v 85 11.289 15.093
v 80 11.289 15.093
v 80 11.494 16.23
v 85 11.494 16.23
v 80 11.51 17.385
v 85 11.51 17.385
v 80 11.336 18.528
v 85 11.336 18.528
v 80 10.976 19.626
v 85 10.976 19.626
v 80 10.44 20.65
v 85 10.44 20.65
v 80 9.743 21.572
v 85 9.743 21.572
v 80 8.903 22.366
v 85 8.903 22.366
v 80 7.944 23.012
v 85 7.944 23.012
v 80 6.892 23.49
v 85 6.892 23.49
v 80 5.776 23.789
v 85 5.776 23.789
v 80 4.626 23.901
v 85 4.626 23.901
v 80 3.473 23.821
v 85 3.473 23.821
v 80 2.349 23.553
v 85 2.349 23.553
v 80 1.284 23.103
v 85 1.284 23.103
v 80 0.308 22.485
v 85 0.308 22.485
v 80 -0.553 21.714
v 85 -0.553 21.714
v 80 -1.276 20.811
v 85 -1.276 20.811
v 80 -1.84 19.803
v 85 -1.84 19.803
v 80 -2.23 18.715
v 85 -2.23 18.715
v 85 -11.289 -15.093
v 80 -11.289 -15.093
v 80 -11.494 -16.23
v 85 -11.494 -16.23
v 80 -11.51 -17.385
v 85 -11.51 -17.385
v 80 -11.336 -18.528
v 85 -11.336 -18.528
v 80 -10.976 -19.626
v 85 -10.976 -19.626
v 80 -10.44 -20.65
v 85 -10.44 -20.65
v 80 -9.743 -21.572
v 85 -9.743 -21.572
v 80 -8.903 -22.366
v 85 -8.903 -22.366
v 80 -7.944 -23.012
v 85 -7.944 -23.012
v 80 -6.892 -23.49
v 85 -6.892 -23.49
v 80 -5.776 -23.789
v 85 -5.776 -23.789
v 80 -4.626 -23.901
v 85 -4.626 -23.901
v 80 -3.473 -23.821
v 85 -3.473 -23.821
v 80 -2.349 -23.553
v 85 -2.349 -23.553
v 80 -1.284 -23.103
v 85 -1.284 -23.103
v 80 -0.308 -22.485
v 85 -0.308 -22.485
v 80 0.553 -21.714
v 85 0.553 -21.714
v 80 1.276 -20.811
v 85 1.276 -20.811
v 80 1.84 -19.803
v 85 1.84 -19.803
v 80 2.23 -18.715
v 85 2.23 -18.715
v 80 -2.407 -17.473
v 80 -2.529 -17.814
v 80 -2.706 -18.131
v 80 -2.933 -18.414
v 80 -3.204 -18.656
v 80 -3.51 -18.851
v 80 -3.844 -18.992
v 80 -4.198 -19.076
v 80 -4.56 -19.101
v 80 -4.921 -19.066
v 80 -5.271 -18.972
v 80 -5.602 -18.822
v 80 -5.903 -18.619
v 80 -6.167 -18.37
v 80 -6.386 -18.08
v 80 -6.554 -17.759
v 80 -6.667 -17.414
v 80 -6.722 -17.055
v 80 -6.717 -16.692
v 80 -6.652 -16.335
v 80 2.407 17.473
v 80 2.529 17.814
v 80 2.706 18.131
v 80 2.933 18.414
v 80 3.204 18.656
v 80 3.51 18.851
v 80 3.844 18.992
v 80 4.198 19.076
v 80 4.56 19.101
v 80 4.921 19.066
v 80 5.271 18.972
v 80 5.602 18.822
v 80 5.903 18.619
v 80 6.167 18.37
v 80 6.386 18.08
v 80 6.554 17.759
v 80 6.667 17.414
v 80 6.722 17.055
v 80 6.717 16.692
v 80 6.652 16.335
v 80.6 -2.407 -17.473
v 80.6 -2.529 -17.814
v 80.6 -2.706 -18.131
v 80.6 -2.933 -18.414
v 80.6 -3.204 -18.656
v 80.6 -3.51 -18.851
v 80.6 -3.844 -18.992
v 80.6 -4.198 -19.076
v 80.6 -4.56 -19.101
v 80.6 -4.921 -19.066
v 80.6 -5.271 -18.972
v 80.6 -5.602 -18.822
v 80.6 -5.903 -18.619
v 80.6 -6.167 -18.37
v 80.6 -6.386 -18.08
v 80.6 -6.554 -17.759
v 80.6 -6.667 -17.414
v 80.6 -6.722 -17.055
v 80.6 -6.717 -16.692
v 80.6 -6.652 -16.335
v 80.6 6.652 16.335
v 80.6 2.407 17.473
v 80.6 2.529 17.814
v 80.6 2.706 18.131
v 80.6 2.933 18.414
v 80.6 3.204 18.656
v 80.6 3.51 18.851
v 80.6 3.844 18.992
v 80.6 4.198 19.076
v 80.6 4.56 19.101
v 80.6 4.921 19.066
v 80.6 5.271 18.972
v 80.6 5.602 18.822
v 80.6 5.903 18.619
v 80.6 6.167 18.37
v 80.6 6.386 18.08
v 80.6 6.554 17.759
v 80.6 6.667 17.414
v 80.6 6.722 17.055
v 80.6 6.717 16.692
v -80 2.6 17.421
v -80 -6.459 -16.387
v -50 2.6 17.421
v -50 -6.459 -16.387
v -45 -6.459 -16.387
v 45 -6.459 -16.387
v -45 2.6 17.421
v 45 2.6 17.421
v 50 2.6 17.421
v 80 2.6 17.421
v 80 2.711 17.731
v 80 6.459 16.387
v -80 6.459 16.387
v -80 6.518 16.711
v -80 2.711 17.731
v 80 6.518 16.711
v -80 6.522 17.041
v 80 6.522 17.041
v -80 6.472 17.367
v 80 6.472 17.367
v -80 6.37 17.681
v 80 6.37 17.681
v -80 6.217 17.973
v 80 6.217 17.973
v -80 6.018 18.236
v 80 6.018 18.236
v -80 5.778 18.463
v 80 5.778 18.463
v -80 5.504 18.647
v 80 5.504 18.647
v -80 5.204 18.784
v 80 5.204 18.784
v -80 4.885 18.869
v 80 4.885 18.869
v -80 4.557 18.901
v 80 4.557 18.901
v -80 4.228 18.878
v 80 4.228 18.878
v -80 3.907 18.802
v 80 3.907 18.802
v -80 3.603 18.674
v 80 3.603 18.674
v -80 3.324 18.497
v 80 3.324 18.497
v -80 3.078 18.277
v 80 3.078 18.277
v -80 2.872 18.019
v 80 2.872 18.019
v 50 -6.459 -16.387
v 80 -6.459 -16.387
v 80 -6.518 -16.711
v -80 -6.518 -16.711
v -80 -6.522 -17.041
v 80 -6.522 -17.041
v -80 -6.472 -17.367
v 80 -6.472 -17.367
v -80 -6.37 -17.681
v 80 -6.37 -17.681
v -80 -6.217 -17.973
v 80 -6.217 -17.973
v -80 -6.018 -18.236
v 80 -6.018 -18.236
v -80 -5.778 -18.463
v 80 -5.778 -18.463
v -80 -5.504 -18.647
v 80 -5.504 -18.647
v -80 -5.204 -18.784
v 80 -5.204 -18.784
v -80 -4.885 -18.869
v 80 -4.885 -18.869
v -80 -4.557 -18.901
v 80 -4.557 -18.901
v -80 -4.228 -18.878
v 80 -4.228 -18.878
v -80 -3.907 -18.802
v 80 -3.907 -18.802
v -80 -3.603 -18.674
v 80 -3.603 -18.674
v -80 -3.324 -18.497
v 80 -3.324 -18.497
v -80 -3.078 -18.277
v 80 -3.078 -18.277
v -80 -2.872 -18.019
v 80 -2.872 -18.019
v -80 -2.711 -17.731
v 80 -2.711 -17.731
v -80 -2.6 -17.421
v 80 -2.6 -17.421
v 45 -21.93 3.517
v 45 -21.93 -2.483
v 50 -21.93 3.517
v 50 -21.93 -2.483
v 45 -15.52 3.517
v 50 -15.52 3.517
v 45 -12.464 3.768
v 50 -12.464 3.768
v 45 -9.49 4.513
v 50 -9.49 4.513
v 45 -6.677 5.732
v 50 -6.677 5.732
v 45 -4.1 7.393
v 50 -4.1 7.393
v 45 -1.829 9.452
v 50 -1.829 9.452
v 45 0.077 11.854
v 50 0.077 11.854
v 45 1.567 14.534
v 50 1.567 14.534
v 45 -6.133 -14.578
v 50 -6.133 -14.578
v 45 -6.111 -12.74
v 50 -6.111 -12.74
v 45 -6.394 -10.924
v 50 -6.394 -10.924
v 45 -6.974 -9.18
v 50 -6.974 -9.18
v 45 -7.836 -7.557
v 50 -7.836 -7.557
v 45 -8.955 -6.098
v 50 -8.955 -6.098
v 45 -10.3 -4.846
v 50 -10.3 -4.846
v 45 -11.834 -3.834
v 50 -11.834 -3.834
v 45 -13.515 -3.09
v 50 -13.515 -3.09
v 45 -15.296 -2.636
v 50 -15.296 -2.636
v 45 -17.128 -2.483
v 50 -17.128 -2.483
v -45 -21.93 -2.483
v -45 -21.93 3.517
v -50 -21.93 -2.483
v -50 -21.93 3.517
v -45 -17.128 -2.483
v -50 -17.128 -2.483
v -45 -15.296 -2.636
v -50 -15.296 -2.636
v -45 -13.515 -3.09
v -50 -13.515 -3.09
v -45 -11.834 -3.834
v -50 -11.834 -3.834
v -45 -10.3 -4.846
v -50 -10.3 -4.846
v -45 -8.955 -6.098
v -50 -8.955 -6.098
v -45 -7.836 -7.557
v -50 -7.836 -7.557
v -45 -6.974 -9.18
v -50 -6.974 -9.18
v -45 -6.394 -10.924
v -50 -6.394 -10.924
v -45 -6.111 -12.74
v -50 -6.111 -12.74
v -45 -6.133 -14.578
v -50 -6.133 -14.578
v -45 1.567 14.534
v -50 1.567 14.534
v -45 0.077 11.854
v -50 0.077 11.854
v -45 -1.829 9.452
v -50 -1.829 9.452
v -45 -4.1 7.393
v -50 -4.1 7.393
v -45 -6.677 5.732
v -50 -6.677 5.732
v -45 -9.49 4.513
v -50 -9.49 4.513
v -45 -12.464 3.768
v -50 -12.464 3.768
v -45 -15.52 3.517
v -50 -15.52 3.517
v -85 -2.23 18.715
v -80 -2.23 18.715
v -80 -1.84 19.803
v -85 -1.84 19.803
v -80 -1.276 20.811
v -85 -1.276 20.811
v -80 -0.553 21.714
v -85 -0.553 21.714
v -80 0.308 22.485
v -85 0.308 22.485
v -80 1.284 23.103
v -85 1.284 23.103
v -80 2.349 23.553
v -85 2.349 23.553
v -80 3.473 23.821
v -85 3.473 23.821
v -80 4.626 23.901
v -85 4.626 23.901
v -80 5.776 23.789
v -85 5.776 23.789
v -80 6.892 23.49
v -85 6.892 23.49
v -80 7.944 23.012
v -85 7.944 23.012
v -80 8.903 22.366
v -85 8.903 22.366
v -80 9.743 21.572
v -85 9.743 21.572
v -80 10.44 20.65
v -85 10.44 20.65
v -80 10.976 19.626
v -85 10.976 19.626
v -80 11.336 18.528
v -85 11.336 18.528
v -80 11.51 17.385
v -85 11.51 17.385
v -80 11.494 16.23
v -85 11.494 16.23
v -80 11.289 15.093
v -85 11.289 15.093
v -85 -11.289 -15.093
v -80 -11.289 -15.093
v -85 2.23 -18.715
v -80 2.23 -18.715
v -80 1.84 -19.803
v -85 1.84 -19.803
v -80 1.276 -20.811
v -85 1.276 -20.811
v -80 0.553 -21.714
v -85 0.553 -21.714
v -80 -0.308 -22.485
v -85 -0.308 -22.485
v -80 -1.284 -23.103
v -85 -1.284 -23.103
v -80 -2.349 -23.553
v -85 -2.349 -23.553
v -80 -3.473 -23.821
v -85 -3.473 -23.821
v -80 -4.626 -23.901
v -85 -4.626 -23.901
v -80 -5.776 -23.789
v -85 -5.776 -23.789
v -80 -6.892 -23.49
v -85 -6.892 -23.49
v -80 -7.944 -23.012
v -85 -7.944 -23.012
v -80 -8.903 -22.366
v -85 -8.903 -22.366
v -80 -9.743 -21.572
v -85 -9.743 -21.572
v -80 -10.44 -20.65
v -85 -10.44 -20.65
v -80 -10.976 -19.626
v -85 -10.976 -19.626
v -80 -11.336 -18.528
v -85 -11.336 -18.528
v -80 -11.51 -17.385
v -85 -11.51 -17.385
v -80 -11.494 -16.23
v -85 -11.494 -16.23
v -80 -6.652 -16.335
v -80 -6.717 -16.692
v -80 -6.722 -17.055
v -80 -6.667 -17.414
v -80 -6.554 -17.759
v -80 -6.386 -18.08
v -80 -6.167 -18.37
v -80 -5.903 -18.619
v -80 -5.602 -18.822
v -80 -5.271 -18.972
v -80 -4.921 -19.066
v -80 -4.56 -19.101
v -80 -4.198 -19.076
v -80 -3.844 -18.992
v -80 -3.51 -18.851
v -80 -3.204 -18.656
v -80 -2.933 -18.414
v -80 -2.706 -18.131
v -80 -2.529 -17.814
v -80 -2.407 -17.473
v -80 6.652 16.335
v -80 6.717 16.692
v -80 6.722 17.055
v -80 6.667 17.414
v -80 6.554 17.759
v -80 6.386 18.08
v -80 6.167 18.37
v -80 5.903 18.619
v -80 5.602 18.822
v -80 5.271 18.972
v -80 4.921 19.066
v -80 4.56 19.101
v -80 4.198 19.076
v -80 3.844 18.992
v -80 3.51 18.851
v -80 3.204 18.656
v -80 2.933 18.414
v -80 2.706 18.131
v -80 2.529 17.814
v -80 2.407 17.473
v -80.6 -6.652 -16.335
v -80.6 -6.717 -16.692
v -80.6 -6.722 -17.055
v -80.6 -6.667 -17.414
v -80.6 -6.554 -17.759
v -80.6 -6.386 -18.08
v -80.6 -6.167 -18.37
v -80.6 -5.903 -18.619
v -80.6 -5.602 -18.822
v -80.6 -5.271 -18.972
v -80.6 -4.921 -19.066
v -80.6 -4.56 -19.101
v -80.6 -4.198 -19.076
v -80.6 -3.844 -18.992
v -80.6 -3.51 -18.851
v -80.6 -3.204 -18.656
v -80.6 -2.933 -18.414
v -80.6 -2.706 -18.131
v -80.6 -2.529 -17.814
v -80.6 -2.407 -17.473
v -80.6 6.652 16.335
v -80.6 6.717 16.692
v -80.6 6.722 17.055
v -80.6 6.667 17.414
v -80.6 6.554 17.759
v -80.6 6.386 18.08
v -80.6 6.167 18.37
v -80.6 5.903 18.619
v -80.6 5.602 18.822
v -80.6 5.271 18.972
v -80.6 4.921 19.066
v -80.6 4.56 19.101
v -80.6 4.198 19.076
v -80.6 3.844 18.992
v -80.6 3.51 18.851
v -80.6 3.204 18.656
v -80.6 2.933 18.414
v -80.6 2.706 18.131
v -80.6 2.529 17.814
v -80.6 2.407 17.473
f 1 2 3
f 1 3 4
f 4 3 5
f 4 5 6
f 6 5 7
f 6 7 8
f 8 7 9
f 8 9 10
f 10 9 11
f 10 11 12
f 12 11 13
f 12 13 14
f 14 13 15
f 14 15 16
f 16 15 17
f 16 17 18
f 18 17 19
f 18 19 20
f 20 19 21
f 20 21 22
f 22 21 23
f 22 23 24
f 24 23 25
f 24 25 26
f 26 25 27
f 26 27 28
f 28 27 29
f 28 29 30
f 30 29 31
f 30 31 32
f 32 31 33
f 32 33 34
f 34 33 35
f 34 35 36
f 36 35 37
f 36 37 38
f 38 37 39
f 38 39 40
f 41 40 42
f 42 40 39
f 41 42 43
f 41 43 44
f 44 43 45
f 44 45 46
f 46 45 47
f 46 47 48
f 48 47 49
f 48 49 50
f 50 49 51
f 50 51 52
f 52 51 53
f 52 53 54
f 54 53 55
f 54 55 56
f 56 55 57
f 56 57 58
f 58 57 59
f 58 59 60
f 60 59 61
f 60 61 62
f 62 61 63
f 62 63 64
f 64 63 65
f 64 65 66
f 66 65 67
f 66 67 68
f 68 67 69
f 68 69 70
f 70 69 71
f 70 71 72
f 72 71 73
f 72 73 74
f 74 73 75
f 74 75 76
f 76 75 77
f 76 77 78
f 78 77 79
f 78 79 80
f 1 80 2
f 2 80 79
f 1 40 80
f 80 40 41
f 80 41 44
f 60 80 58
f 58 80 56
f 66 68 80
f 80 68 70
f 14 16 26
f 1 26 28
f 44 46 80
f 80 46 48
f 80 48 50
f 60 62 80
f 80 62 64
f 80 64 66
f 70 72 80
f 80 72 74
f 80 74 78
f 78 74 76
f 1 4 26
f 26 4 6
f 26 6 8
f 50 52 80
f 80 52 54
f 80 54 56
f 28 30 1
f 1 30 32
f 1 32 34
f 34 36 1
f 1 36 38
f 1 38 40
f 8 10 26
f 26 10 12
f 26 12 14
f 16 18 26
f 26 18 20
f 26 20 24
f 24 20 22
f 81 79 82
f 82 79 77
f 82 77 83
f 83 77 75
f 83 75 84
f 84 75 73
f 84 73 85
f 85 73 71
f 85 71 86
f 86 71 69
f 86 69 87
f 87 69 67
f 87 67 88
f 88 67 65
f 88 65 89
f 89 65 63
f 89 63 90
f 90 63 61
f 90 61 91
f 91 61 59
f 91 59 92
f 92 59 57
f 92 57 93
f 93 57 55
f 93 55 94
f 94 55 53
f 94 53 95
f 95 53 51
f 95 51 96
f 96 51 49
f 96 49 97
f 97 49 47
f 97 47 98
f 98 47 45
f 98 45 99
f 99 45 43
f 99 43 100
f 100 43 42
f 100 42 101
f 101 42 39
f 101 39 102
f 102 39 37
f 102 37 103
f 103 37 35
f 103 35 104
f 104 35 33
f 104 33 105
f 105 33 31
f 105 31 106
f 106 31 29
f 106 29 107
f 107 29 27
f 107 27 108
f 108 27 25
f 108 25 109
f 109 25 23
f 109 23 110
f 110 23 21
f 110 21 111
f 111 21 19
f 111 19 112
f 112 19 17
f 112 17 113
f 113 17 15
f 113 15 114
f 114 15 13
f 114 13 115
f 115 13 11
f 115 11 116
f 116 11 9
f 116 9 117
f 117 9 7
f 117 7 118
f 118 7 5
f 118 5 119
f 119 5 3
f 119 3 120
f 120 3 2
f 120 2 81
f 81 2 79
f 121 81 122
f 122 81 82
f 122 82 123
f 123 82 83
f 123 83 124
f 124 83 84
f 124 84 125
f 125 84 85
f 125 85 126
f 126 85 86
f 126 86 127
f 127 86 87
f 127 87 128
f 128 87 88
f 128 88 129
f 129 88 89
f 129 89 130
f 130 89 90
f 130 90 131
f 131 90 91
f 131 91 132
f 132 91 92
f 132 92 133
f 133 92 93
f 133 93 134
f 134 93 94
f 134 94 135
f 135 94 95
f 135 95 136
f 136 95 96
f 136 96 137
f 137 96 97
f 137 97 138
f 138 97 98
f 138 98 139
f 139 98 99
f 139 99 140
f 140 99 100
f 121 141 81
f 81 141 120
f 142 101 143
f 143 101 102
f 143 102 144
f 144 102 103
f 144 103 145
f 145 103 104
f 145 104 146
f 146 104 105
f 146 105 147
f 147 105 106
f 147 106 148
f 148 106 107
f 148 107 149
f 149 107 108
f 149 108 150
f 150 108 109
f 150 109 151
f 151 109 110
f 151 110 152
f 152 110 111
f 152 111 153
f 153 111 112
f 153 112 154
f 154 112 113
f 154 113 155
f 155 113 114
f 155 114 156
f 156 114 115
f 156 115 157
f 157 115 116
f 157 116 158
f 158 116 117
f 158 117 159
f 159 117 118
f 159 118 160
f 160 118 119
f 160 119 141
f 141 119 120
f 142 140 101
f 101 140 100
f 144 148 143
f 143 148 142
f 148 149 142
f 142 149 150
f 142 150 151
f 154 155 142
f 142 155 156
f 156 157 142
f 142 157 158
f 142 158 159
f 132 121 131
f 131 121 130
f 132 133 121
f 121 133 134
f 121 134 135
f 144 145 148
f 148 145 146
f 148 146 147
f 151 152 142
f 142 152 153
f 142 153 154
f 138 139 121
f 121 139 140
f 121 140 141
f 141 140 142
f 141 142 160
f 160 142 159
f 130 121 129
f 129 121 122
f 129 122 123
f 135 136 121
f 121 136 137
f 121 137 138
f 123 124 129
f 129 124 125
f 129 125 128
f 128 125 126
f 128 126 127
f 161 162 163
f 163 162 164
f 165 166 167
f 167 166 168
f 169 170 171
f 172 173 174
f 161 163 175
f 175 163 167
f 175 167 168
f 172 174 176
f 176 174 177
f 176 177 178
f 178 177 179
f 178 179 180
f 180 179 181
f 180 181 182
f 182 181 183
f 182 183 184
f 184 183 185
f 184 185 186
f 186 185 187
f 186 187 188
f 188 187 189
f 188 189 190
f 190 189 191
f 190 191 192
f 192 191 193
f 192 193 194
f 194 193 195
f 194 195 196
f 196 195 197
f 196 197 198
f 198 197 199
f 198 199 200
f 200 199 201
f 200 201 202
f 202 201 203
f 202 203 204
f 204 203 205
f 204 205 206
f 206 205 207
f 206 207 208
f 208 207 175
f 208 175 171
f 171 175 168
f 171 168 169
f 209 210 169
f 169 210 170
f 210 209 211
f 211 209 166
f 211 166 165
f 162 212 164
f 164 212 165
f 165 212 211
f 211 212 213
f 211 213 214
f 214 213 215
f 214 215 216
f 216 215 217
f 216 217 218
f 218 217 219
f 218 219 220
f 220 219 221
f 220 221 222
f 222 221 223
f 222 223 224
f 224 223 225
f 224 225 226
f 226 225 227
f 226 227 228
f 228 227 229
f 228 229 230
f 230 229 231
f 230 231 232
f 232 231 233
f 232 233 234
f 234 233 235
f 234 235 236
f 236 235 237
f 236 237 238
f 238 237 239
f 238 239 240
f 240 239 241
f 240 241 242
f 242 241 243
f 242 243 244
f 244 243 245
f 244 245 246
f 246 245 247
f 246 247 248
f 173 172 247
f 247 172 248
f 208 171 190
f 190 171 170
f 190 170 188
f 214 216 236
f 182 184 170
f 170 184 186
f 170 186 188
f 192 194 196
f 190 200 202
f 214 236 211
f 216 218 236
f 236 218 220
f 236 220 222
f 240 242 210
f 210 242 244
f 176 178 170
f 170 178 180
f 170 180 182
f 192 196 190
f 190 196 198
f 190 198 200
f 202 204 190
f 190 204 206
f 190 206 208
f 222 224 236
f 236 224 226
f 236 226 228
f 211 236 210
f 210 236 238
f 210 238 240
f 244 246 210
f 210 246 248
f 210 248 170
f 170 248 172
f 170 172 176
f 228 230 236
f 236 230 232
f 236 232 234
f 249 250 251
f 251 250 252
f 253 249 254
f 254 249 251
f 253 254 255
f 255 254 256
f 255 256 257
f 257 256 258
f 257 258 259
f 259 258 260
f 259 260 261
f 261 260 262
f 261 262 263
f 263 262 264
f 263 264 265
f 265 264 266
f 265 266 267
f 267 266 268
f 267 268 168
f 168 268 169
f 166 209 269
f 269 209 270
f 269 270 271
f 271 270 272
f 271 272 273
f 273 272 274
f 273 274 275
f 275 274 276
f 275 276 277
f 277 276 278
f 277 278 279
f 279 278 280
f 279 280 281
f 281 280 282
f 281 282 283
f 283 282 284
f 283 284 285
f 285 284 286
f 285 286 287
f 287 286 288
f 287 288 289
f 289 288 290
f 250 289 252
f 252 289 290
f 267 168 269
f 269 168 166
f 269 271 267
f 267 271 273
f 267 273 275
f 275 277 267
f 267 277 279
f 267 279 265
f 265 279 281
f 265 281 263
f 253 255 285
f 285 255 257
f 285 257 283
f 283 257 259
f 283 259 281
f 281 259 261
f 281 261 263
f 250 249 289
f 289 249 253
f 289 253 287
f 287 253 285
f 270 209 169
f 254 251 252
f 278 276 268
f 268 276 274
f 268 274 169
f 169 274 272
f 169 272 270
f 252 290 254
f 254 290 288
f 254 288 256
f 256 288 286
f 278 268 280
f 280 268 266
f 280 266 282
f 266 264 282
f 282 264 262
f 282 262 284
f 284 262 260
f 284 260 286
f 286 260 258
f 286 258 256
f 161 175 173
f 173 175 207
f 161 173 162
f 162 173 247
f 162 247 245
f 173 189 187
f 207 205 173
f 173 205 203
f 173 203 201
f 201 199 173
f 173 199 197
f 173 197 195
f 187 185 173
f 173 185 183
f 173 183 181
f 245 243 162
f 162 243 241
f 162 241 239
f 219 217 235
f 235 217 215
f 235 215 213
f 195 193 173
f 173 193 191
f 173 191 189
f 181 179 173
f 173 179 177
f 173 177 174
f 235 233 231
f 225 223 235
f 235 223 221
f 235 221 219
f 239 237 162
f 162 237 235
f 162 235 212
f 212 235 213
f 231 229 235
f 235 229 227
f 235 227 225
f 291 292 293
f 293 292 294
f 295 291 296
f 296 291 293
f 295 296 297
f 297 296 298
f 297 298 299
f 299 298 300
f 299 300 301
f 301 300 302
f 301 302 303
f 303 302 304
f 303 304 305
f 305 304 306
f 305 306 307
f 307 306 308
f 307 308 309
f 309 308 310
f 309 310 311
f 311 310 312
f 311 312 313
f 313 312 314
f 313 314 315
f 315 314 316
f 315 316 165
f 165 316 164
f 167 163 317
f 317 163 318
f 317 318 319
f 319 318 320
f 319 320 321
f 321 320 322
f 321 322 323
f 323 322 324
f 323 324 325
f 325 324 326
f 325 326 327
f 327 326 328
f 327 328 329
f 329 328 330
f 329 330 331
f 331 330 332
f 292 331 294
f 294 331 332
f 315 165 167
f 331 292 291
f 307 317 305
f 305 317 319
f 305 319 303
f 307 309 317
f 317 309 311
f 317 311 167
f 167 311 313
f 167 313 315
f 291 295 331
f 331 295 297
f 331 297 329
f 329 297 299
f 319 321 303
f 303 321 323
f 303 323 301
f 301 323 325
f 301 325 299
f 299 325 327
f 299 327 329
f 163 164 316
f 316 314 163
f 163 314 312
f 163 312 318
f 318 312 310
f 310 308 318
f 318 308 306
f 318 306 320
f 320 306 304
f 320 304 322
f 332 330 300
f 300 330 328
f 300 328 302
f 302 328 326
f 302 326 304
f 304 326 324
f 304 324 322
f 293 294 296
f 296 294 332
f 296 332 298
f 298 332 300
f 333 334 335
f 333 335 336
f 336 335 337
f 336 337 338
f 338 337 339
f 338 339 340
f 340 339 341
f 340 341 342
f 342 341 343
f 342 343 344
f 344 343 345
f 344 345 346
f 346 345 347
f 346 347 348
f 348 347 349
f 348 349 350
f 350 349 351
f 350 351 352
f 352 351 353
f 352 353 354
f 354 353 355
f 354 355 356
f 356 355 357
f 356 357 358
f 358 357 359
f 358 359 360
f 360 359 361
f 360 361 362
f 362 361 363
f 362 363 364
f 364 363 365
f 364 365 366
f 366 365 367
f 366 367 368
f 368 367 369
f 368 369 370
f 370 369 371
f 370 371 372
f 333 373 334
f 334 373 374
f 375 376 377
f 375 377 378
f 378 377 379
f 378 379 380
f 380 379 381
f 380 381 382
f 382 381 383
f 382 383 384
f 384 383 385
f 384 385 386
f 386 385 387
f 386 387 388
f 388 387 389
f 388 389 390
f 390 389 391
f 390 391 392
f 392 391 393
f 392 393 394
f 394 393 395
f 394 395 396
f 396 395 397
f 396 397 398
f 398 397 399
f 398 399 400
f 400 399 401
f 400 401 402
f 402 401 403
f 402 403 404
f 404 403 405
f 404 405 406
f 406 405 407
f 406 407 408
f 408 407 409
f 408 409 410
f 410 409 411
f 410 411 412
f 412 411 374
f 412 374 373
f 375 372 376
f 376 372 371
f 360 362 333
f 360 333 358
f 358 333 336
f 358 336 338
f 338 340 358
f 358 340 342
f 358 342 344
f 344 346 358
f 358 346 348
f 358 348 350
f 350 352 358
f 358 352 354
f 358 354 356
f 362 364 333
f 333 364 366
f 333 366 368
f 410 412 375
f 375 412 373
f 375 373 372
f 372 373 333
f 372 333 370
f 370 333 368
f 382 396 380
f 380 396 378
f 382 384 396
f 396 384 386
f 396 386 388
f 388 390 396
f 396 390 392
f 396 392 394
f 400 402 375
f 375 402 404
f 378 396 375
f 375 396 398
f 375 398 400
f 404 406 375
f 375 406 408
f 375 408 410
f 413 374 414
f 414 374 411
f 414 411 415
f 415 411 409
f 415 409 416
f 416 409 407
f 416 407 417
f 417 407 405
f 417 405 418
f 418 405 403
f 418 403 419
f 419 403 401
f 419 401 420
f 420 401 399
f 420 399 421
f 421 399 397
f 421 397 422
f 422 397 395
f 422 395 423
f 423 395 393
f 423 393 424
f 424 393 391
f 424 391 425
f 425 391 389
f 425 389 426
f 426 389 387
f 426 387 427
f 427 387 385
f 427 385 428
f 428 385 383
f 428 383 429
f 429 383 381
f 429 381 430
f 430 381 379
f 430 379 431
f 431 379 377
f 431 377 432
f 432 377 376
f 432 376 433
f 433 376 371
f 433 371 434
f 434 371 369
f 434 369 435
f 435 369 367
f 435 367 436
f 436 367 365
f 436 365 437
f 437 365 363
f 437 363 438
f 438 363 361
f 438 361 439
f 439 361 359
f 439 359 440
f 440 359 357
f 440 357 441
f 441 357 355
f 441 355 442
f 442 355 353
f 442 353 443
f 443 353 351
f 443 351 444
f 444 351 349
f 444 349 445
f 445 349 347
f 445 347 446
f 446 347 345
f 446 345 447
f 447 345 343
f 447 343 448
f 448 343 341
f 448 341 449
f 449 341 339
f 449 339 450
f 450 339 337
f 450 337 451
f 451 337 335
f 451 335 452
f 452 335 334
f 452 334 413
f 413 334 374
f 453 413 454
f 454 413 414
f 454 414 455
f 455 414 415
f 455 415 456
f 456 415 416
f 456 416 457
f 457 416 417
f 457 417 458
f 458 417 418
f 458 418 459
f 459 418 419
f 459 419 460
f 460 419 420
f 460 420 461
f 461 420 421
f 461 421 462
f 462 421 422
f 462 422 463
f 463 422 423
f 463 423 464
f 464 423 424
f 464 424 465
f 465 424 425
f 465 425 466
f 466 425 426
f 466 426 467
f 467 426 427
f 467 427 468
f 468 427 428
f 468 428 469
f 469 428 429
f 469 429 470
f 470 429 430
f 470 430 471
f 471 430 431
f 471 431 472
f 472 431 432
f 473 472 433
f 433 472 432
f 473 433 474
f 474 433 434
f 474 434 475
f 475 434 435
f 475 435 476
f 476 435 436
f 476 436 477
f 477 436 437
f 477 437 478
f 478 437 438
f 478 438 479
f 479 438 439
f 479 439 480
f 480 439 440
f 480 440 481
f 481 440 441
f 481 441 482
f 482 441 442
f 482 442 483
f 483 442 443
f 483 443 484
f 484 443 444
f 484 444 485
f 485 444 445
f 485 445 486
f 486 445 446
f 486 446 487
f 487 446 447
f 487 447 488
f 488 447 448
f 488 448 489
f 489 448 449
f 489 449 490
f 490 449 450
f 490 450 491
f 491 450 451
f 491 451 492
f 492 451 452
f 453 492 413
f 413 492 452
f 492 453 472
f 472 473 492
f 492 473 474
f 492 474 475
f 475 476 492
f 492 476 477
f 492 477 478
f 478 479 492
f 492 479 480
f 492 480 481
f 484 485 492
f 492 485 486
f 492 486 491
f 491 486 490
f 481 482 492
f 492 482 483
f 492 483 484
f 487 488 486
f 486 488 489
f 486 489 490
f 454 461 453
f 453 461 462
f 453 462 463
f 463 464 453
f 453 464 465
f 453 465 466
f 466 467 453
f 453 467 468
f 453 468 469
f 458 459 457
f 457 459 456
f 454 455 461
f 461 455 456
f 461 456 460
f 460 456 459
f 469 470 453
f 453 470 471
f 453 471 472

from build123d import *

# Parameters (mm, degrees)
BOSS_EXTRUDE1_DEPTH = 80
BOSS_EXTRUDE2_DEPTH = 5
CUT_EXTRUDE1_DEPTH  = 0.6
BOSS_EXTRUDE5_START = -45
BOSS_EXTRUDE5_DEPTH = 5


with BuildPart() as part:
    # Sketch1 → Boss-Extrude1 (new body)
    with BuildSketch(Plane(origin=(0, 0, 0), x_dir=(0, 0, -1), z_dir=(1, 0, 0))):
        with BuildLine():
            Line((-16.386662876, 6.458949422), (17.420741045, -2.599717156))
            ThreePointArc((17.420741045, -2.599717156), (18.833318093, -5.046372374), (16.386662876, -6.458949422))
            Line((16.386662876, -6.458949422), (-17.420741045, 2.599717156))
            ThreePointArc((-17.420741045, 2.599717156), (-18.833318093, 5.046372374), (-16.386662876, 6.458949422))
        make_face()
    boss_extrude1 = extrude(amount=BOSS_EXTRUDE1_DEPTH)

    # Sketch7 → Boss-Extrude5 (add)
    with BuildSketch(Plane.ZY.offset(BOSS_EXTRUDE5_START)):
        with BuildLine():
            ThreePointArc((-16.386662876, -6.458949422), (-6.804205107, -8.365018782), (-2.482960915, -17.127635169))
            Line((-2.482960915, -17.127635169), (-2.482960915, -21.929616133))
            Line((-2.482960915, -21.929616133), (3.517039085, -21.929616133))
            Line((3.517039085, -21.929616133), (3.517039085, -15.519940014))
            ThreePointArc((3.517039085, -15.519940014), (7.393492667, -4.100276007), (17.420741045, 2.599717156))
            Line((17.420741045, 2.599717156), (-16.386662876, -6.458949422))
        make_face()
        with BuildLine():
            ThreePointArc((-17.420741045, -2.599717156), (-18.833318093, -5.046372374), (-16.386662876, -6.458949422))
            Line((-16.386662876, -6.458949422), (17.420741045, 2.599717156))
            ThreePointArc((17.420741045, 2.599717156), (18.833318093, 5.046372374), (16.386662876, 6.458949422))
            Line((16.386662876, 6.458949422), (-17.420741045, -2.599717156))
        make_face()
    boss_extrude5 = extrude(amount=-BOSS_EXTRUDE5_DEPTH)

    # Mirror1: Boss-Extrude1, Boss-Extrude5 across plane
    add(boss_extrude1.mirror(Plane(origin=(0, 4.529333289, 16.90370196), x_dir=(0, 0, 1), z_dir=(1, 0, 0))))
    add(boss_extrude5.mirror(Plane(origin=(0, 4.529333289, 16.90370196), x_dir=(0, 0, 1), z_dir=(1, 0, 0))))


with BuildPart() as body_2:
    # Sketch2 → Boss-Extrude2 (new body)
    with BuildSketch(Plane(origin=(80, 0, 0), x_dir=(0, 0, -1), z_dir=(1, 0, 0))):
        with BuildLine():
            Line((-18.71483627, -2.229911975), (15.09256765, -11.288578554))
            ThreePointArc((15.09256765, -11.288578554), (23.662947224, -6.340467599), (18.71483627, 2.229911975))
            Line((18.71483627, 2.229911975), (-15.09256765, 11.288578554))
            ThreePointArc((-15.09256765, 11.288578554), (-23.662947224, 6.340467599), (-18.71483627, -2.229911975))
        make_face()
    extrude(amount=BOSS_EXTRUDE2_DEPTH)

    # Sketch8 → Cut-Extrude1 (cut)
    with BuildSketch(Plane.ZY.offset(-80)):
        with BuildLine():
            Line((-17.472504854, -2.406531991), (16.334899067, 6.652134588))
            ThreePointArc((16.334899067, 6.652134588), (19.026503258, 5.098136183), (17.472504854, 2.406531991))
            Line((17.472504854, 2.406531991), (-16.334899067, -6.652134588))
            ThreePointArc((-16.334899067, -6.652134588), (-19.026503258, -5.098136183), (-17.472504854, -2.406531991))
        make_face()
    extrude(amount=-CUT_EXTRUDE1_DEPTH, mode=Mode.SUBTRACT)


with BuildPart() as body_3:
    # Mirror3: mirrored copy
    add(body_2.part.mirror(Plane(origin=(0, 4.529333289, 16.90370196), x_dir=(0, 0, 1), z_dir=(1, 0, 0))))


solid = Compound([part.part, body_2.part, body_3.part])
